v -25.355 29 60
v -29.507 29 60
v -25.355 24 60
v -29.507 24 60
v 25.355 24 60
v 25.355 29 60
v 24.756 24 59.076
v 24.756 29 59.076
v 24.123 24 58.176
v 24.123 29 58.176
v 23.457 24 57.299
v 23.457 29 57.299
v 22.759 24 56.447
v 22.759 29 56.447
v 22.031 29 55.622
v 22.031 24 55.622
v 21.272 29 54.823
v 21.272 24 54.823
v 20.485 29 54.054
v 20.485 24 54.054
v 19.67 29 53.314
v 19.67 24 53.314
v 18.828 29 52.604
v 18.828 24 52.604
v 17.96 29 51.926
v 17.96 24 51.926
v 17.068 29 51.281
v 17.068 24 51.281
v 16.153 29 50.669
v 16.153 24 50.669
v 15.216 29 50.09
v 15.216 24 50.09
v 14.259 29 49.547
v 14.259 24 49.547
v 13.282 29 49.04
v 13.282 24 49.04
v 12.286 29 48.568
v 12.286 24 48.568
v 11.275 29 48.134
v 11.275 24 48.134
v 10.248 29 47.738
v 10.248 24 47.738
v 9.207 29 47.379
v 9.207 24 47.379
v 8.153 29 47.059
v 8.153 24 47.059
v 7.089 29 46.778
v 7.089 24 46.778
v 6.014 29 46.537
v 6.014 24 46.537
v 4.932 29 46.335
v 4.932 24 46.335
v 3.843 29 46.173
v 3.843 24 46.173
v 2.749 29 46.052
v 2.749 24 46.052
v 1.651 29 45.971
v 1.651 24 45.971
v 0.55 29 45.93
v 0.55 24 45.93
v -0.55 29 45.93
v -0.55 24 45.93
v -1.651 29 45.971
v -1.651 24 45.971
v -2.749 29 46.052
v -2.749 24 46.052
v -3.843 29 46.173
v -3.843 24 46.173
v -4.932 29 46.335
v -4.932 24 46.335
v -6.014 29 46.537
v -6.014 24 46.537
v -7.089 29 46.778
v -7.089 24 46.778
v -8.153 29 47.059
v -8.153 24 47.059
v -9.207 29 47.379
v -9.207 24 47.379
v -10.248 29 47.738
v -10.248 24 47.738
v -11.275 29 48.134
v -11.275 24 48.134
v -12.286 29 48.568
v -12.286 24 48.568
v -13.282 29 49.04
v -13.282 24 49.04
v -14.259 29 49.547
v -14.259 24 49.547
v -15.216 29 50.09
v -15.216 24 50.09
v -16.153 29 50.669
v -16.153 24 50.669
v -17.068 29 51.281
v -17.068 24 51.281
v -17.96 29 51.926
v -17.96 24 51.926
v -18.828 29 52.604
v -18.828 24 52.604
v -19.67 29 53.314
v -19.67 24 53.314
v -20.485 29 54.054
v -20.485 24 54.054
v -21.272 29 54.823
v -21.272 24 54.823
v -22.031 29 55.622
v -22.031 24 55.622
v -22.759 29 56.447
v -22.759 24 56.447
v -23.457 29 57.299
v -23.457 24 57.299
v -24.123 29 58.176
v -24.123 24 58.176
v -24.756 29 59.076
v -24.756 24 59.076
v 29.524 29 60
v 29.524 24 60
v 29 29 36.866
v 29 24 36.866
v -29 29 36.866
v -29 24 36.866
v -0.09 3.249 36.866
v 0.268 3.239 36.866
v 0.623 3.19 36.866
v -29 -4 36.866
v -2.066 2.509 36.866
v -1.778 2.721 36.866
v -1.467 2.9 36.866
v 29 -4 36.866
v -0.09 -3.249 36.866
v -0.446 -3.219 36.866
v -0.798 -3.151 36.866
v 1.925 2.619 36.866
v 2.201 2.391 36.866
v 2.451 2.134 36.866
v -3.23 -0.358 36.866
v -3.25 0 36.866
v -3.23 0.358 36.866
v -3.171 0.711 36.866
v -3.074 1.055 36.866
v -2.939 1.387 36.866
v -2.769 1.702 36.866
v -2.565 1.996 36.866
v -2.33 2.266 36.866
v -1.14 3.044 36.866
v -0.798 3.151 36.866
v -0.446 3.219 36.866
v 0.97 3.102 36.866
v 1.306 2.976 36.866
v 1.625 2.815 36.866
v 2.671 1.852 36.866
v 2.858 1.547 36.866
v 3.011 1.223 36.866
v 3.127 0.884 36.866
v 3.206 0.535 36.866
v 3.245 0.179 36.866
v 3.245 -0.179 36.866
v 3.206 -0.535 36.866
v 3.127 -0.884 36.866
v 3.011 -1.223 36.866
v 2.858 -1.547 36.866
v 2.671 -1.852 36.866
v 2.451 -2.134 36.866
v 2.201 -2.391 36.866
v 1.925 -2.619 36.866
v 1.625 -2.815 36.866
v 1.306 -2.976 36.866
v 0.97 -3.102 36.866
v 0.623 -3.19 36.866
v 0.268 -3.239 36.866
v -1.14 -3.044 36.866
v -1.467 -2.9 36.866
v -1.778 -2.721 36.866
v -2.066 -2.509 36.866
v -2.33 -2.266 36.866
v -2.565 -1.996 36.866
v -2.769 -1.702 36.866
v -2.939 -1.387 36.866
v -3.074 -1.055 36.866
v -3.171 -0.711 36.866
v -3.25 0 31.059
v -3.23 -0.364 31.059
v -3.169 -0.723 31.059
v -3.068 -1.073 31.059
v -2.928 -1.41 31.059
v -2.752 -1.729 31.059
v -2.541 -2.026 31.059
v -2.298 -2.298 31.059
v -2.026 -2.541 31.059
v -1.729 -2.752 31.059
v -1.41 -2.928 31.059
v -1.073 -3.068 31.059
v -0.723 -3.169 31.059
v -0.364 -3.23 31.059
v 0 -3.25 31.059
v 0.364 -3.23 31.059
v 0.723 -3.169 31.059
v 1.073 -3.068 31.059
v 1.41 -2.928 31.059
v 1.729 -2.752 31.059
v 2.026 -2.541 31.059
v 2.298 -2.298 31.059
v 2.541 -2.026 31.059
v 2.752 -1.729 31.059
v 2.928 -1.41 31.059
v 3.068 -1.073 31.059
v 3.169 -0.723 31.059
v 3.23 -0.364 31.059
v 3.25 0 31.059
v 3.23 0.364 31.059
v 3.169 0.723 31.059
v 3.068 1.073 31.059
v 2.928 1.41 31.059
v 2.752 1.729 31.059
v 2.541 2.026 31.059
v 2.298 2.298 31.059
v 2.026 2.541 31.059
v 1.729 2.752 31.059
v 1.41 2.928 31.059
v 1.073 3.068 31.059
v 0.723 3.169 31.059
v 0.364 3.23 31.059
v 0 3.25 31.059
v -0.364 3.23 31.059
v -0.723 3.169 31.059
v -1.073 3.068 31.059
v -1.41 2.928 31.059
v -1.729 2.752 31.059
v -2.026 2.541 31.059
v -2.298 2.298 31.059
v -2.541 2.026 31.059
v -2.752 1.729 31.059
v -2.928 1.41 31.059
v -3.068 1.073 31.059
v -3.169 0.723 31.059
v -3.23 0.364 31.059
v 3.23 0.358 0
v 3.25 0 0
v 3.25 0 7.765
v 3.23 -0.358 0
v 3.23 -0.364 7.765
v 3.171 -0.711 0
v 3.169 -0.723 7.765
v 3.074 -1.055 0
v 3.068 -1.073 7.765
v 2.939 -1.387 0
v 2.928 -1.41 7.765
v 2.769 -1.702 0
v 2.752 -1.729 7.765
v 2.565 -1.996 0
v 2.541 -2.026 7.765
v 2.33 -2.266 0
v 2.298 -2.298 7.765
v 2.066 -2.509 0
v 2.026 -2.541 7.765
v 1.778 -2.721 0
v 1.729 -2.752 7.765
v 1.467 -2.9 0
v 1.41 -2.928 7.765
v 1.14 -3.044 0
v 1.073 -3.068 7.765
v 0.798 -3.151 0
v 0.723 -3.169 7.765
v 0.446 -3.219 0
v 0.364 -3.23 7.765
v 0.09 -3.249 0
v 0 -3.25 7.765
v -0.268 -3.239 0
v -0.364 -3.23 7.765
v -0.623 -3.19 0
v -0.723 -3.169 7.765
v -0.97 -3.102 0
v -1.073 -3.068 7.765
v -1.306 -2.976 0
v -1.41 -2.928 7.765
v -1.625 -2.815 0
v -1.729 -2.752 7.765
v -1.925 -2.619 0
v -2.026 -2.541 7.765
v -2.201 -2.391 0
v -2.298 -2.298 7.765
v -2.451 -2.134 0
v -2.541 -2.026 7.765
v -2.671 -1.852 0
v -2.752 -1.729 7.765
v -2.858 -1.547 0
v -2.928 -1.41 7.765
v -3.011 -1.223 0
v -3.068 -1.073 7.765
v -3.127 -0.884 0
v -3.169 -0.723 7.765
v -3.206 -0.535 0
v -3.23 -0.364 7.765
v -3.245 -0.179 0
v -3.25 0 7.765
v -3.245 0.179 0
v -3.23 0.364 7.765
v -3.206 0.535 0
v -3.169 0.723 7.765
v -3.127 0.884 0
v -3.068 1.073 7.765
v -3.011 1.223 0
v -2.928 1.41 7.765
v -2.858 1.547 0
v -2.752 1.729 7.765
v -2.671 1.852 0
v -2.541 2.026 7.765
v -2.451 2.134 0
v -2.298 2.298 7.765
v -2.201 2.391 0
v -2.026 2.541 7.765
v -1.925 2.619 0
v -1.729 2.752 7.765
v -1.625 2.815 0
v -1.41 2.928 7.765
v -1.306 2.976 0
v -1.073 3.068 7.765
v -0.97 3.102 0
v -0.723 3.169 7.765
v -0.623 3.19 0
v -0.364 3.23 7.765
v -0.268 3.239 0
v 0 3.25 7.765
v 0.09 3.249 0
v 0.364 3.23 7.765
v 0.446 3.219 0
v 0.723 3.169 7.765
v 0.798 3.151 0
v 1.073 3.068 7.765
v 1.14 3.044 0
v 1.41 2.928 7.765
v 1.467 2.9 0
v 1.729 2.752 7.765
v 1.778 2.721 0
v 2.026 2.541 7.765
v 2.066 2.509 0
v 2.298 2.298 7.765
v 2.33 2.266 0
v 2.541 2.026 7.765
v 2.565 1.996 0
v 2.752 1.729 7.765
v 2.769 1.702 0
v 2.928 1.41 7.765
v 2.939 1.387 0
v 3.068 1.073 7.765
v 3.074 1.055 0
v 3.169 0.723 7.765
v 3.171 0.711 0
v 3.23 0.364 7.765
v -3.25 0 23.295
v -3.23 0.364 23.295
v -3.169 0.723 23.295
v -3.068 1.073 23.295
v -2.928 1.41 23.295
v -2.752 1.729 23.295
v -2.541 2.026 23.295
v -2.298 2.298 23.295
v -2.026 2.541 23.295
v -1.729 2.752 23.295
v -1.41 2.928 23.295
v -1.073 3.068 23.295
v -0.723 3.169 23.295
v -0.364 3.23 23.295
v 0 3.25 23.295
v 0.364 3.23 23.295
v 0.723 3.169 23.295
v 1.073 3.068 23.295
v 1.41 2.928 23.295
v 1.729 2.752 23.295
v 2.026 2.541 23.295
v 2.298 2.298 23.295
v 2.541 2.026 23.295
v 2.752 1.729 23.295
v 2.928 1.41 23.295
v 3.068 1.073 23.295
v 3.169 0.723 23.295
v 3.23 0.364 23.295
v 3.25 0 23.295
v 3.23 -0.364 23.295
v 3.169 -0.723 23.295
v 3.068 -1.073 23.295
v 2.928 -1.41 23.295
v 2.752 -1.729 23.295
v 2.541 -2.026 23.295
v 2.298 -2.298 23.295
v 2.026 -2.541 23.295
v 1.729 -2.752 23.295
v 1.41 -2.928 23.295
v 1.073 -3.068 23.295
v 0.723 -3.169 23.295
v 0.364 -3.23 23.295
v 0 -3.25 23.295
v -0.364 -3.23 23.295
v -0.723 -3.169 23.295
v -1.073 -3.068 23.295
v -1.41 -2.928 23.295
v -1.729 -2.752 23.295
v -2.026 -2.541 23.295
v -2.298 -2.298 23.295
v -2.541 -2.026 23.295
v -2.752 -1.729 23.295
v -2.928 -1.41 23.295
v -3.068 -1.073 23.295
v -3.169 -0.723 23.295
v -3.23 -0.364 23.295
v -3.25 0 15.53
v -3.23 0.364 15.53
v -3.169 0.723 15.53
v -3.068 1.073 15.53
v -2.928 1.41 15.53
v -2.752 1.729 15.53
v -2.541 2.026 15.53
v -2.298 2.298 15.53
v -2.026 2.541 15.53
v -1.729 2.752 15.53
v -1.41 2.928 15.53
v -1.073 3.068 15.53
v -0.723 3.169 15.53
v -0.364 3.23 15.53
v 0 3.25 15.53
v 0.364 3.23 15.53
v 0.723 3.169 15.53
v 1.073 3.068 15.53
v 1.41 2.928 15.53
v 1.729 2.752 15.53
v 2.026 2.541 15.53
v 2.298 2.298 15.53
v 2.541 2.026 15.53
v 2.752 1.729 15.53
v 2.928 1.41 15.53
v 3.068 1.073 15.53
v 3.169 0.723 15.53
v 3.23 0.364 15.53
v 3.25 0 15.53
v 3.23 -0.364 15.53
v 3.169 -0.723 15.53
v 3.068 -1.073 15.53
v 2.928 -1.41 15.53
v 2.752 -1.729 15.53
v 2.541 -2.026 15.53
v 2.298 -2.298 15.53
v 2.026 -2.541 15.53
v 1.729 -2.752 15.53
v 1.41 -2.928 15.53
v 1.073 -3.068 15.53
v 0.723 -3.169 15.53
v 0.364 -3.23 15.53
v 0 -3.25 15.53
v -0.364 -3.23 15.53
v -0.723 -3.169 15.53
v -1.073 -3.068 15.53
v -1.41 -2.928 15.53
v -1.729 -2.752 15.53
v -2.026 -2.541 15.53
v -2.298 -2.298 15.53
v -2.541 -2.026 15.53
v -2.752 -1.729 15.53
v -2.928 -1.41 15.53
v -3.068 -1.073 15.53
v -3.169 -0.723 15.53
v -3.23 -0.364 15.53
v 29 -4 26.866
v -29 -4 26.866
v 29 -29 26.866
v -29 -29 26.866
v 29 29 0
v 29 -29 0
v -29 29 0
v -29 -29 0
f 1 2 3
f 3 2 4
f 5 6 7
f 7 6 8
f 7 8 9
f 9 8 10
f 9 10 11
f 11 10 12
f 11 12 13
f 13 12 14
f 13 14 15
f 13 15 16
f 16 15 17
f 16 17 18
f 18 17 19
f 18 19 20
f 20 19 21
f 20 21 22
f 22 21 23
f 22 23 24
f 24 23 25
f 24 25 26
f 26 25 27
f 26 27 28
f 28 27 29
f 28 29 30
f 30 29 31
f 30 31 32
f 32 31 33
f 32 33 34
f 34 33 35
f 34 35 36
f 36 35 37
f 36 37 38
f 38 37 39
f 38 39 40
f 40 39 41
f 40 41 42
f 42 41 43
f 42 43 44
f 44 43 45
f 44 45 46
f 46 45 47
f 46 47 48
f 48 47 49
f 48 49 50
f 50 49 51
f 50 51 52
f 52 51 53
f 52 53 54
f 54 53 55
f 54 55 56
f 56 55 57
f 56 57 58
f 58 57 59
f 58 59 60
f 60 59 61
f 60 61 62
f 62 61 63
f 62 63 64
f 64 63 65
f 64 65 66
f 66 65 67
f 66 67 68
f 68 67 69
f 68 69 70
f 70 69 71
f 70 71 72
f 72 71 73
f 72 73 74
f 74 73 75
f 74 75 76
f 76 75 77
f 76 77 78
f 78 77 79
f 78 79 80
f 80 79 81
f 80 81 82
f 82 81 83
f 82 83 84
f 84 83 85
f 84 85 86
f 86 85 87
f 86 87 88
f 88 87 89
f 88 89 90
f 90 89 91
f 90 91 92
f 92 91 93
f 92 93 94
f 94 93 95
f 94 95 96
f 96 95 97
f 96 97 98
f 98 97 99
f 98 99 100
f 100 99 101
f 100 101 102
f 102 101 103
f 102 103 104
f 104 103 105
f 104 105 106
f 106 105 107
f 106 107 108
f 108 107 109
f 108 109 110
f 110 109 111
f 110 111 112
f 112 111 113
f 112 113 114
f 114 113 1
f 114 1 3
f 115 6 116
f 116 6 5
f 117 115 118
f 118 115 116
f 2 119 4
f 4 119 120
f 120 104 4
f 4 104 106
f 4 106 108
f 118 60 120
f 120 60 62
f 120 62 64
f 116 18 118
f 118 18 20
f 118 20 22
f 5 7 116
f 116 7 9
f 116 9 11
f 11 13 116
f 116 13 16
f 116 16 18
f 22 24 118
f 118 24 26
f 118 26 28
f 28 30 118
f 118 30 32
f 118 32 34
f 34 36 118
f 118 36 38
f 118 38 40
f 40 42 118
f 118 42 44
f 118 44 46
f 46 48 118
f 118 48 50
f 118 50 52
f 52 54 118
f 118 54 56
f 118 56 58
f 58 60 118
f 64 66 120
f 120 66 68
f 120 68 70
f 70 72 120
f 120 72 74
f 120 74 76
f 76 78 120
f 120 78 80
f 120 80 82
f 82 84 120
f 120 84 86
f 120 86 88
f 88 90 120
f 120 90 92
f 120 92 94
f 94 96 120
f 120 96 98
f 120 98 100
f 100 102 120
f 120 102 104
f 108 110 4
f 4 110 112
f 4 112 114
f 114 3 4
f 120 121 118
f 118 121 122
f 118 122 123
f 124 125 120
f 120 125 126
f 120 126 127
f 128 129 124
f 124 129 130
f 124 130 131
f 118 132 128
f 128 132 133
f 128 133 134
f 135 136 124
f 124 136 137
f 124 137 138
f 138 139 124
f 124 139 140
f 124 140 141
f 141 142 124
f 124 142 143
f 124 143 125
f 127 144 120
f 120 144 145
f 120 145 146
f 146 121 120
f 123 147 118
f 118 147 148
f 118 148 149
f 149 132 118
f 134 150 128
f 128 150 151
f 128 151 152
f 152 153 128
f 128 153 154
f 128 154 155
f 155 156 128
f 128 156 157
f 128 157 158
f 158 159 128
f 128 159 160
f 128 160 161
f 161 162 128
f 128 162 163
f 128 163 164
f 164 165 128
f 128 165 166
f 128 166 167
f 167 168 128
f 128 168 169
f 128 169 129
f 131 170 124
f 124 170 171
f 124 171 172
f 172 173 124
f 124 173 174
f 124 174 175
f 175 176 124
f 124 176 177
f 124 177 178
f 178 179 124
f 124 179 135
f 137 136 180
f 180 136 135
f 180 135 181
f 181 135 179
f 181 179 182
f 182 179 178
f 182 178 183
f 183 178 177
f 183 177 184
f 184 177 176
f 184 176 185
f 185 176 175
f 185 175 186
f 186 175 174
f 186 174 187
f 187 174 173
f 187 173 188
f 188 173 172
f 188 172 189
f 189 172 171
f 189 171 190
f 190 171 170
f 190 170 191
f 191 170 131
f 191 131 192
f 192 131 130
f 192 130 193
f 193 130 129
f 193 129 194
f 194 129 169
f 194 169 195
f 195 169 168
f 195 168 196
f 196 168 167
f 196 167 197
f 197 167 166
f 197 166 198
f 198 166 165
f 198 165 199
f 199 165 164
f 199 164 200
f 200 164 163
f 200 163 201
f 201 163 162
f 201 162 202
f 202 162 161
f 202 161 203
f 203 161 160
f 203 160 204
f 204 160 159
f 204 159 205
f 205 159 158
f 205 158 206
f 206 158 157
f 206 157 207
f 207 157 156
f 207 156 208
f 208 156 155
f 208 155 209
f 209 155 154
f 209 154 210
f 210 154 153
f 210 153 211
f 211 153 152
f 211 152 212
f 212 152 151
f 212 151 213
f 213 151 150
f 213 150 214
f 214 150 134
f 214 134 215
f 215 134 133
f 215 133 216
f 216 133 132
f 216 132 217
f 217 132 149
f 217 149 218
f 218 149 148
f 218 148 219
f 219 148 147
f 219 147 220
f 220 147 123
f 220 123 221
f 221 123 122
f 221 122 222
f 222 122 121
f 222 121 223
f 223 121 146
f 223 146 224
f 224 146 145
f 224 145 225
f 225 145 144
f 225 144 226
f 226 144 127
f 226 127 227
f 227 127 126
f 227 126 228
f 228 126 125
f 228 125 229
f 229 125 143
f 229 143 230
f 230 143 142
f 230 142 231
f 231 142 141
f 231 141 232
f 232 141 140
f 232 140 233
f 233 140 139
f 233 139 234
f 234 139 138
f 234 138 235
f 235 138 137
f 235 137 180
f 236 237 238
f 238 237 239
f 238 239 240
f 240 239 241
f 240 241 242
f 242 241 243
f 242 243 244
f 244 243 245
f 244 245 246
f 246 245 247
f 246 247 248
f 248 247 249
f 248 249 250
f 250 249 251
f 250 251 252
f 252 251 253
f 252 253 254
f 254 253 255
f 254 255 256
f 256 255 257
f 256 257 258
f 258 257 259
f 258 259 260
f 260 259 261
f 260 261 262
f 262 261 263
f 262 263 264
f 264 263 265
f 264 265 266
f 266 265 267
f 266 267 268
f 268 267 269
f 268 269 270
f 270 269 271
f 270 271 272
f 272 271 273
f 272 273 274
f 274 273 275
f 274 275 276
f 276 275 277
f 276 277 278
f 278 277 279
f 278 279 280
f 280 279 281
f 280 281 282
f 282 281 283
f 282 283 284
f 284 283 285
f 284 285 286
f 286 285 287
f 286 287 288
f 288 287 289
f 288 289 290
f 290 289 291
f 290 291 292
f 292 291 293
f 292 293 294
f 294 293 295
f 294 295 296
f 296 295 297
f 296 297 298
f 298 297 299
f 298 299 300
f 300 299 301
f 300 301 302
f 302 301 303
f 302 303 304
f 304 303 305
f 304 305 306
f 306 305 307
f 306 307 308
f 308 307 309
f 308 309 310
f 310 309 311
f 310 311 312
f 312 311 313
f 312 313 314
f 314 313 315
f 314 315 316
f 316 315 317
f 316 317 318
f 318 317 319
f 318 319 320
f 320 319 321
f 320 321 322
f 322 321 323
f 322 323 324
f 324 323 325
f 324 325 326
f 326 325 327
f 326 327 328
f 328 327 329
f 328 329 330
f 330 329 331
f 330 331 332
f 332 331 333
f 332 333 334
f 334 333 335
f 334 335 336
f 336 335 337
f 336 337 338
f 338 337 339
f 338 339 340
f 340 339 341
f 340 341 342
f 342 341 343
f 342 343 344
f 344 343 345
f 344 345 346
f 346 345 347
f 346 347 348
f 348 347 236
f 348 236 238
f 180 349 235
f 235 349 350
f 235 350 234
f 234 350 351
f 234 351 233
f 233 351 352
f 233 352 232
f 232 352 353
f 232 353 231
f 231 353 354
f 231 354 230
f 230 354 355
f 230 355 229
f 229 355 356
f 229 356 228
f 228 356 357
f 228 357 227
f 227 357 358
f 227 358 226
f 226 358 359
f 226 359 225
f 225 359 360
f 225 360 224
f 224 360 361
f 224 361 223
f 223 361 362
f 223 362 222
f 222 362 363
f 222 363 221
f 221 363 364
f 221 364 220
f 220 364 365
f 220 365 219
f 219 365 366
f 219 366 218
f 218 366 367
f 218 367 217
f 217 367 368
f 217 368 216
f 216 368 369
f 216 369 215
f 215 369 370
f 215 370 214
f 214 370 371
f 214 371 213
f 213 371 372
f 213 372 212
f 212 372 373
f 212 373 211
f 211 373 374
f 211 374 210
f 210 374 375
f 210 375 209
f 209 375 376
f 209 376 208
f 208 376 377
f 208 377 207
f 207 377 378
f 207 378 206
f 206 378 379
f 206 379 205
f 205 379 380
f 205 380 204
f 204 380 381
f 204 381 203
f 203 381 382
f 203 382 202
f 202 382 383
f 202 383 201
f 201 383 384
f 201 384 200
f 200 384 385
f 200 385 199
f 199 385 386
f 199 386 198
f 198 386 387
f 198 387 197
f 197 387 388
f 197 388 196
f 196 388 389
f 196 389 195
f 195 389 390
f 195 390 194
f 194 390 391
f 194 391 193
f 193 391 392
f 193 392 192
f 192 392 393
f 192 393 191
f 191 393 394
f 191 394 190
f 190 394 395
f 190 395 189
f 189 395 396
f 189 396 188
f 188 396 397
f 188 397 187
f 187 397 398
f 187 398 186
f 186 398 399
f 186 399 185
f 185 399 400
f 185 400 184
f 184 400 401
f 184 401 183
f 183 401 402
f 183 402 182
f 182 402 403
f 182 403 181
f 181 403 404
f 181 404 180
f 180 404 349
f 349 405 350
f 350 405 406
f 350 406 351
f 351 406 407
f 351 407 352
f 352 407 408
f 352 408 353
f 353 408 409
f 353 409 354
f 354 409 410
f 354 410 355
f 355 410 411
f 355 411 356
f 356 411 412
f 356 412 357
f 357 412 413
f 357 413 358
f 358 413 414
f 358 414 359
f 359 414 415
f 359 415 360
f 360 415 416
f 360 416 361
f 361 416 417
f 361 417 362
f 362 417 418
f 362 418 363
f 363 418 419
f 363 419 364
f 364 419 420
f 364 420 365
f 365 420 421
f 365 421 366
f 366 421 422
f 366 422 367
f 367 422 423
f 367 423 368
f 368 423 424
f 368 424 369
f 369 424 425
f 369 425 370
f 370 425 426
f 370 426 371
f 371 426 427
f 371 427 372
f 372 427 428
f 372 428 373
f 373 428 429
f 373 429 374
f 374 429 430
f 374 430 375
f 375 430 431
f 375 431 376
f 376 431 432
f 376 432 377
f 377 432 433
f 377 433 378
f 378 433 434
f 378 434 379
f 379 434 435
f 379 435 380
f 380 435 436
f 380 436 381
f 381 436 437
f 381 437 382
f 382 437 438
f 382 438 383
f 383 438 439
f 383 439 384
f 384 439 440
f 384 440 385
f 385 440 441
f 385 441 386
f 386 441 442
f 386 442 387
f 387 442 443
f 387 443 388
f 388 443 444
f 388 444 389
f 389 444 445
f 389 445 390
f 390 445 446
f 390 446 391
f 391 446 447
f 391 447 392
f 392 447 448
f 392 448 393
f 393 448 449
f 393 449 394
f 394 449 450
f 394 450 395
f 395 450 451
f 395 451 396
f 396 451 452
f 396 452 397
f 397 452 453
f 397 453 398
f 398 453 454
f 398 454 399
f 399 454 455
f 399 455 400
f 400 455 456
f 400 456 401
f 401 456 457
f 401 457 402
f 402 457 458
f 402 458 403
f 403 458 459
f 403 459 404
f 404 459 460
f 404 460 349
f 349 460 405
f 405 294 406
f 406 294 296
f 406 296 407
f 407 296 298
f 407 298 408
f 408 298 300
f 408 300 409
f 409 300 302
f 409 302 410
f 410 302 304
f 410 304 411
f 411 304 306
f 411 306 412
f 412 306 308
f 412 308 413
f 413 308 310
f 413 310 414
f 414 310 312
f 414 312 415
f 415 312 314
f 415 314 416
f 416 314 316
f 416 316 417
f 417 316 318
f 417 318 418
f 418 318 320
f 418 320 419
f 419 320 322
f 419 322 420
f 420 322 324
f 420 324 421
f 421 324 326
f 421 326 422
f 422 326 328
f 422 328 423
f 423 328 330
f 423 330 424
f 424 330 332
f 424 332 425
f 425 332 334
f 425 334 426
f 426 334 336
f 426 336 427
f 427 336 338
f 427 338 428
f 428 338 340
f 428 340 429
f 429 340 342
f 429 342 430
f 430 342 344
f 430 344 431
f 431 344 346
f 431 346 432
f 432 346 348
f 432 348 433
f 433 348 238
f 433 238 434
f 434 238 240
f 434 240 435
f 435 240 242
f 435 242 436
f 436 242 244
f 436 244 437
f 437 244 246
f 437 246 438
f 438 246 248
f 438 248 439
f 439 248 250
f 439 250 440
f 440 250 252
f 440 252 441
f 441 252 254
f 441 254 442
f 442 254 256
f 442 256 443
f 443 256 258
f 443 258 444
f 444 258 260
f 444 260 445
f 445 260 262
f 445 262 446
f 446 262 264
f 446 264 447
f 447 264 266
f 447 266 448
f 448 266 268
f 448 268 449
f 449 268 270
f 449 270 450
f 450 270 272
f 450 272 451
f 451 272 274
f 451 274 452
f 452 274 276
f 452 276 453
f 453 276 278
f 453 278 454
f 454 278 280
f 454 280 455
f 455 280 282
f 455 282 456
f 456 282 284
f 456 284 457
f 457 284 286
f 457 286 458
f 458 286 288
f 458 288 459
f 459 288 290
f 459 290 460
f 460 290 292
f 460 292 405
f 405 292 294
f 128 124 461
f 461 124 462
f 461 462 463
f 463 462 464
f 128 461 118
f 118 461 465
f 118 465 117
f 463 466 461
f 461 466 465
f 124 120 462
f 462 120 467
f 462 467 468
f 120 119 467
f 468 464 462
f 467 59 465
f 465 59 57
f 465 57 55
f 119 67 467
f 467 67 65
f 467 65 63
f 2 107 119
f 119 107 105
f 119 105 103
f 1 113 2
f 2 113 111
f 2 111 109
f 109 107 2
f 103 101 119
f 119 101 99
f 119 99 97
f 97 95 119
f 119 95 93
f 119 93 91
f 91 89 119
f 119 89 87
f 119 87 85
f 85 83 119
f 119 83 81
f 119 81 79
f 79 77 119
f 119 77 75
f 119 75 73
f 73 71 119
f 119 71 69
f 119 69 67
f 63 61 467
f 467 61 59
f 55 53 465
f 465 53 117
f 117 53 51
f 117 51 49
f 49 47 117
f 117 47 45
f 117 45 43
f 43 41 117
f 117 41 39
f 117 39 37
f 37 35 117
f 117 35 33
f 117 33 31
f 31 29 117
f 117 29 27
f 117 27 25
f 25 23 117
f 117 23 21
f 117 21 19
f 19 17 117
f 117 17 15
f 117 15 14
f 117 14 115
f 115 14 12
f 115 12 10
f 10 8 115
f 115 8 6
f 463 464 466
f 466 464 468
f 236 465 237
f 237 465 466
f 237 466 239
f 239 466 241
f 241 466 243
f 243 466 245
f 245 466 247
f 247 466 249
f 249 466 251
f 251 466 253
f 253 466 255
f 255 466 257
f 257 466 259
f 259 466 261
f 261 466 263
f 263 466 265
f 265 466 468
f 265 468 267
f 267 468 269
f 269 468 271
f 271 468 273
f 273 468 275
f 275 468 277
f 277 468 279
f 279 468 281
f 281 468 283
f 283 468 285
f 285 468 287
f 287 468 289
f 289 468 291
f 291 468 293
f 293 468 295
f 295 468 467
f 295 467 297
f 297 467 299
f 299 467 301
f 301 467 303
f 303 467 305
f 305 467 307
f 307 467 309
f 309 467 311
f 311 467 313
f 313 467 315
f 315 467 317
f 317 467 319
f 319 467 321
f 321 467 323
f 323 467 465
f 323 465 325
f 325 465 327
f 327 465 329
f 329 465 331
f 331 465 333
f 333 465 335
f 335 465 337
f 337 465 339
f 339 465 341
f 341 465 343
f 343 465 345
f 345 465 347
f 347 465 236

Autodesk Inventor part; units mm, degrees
ref_plane "YZ Plane" through (0, 0, 0) normal (1, 0, 0) x (0, 1, 0)
ref_plane "XZ Plane" through (0, 0, 0) normal (0, 1, 0) x (-1, 0, 0)
ref_plane "XY Plane" through (0, 0, 0) normal (0, 0, 1) x (1, 0, 0)
sketch "Sketch1" plane through (0, 0, 0) normal (0, 0, 1) x (1, 0, 0)
  line L0 (29, -29) -> (-29, -29)
  line L1 (-29, -29) -> (-29, 29)
  line L2 (-29, 29) -> (29, 29)
  line L3 (29, 29) -> (29, -29)
  line L4 (29, -29) -> (-29, 29) construction
  line L5 (-29, -29) -> (29, 29) construction
  point P0 (0, 0)
  point P1 (0, 0)
  dimension "d0" = 58
  dimension "d1" = 58
extrude "Extrusion1" add sketch "Sketch1" along normal blind 36.866
sketch "Sketch2" plane through (0, 0, 36.866) normal (0, 0, 1) x (1, 0, 0)
  line L0 (-29, 29) -> (-29, -29) projected
  line L1 (29, -29) -> (29, 29) projected
  line L2 (-29, -4) -> (29, -4)
  line L3 (29, -4) -> (29, -29)
  line L4 (29, -29) -> (-29, -29)
  line L5 (-29, -29) -> (-29, -4)
  point P0 (0, 0)
extrude "Extrusion2" cut sketch "Sketch2" against normal blind 10
hole "Hole1" at (0, 0, 0) direction (0, 0, 1) diameter 6.5 end through all
sketch "Sketch3" plane through (-29, 29, 0) normal (0, 1, 0) x (1, 0, 0)
  line L0 (0, 0) -> (58, 0) projected
  line L1 (0, 0) -> (0, -36.866) projected
  line L2 (58, -36.866) -> (0, -36.866) projected
  line L3 (58, 0) -> (58, -36.866) projected
  arc A0 (3.645, -60) -> (54.355, -60) centre (29, -75.8) ccw
  line L4 (58, -36.866) -> (58, -26.866) projected
  line L5 (58, -36.866) -> (58.8673, -75.1229)
  line L6 (0, -26.866) -> (0, -36.866) projected
  line L7 (0, -36.866) -> (-0.8673, -76.4771)
  line L8 (58.5245, -60) -> (-0.5065, -60)
  arc A1 (54.355, -60) -> (3.645, -60) centre (29, -75.8) ccw
  point P0 (29, 0)
  dimension "d13" = 59.75
extrude "Extrusion3" add sketch "Sketch3" against normal blind 5 contours L2 L5 L8 A1 L7
properties part number "Iris15-mount"
